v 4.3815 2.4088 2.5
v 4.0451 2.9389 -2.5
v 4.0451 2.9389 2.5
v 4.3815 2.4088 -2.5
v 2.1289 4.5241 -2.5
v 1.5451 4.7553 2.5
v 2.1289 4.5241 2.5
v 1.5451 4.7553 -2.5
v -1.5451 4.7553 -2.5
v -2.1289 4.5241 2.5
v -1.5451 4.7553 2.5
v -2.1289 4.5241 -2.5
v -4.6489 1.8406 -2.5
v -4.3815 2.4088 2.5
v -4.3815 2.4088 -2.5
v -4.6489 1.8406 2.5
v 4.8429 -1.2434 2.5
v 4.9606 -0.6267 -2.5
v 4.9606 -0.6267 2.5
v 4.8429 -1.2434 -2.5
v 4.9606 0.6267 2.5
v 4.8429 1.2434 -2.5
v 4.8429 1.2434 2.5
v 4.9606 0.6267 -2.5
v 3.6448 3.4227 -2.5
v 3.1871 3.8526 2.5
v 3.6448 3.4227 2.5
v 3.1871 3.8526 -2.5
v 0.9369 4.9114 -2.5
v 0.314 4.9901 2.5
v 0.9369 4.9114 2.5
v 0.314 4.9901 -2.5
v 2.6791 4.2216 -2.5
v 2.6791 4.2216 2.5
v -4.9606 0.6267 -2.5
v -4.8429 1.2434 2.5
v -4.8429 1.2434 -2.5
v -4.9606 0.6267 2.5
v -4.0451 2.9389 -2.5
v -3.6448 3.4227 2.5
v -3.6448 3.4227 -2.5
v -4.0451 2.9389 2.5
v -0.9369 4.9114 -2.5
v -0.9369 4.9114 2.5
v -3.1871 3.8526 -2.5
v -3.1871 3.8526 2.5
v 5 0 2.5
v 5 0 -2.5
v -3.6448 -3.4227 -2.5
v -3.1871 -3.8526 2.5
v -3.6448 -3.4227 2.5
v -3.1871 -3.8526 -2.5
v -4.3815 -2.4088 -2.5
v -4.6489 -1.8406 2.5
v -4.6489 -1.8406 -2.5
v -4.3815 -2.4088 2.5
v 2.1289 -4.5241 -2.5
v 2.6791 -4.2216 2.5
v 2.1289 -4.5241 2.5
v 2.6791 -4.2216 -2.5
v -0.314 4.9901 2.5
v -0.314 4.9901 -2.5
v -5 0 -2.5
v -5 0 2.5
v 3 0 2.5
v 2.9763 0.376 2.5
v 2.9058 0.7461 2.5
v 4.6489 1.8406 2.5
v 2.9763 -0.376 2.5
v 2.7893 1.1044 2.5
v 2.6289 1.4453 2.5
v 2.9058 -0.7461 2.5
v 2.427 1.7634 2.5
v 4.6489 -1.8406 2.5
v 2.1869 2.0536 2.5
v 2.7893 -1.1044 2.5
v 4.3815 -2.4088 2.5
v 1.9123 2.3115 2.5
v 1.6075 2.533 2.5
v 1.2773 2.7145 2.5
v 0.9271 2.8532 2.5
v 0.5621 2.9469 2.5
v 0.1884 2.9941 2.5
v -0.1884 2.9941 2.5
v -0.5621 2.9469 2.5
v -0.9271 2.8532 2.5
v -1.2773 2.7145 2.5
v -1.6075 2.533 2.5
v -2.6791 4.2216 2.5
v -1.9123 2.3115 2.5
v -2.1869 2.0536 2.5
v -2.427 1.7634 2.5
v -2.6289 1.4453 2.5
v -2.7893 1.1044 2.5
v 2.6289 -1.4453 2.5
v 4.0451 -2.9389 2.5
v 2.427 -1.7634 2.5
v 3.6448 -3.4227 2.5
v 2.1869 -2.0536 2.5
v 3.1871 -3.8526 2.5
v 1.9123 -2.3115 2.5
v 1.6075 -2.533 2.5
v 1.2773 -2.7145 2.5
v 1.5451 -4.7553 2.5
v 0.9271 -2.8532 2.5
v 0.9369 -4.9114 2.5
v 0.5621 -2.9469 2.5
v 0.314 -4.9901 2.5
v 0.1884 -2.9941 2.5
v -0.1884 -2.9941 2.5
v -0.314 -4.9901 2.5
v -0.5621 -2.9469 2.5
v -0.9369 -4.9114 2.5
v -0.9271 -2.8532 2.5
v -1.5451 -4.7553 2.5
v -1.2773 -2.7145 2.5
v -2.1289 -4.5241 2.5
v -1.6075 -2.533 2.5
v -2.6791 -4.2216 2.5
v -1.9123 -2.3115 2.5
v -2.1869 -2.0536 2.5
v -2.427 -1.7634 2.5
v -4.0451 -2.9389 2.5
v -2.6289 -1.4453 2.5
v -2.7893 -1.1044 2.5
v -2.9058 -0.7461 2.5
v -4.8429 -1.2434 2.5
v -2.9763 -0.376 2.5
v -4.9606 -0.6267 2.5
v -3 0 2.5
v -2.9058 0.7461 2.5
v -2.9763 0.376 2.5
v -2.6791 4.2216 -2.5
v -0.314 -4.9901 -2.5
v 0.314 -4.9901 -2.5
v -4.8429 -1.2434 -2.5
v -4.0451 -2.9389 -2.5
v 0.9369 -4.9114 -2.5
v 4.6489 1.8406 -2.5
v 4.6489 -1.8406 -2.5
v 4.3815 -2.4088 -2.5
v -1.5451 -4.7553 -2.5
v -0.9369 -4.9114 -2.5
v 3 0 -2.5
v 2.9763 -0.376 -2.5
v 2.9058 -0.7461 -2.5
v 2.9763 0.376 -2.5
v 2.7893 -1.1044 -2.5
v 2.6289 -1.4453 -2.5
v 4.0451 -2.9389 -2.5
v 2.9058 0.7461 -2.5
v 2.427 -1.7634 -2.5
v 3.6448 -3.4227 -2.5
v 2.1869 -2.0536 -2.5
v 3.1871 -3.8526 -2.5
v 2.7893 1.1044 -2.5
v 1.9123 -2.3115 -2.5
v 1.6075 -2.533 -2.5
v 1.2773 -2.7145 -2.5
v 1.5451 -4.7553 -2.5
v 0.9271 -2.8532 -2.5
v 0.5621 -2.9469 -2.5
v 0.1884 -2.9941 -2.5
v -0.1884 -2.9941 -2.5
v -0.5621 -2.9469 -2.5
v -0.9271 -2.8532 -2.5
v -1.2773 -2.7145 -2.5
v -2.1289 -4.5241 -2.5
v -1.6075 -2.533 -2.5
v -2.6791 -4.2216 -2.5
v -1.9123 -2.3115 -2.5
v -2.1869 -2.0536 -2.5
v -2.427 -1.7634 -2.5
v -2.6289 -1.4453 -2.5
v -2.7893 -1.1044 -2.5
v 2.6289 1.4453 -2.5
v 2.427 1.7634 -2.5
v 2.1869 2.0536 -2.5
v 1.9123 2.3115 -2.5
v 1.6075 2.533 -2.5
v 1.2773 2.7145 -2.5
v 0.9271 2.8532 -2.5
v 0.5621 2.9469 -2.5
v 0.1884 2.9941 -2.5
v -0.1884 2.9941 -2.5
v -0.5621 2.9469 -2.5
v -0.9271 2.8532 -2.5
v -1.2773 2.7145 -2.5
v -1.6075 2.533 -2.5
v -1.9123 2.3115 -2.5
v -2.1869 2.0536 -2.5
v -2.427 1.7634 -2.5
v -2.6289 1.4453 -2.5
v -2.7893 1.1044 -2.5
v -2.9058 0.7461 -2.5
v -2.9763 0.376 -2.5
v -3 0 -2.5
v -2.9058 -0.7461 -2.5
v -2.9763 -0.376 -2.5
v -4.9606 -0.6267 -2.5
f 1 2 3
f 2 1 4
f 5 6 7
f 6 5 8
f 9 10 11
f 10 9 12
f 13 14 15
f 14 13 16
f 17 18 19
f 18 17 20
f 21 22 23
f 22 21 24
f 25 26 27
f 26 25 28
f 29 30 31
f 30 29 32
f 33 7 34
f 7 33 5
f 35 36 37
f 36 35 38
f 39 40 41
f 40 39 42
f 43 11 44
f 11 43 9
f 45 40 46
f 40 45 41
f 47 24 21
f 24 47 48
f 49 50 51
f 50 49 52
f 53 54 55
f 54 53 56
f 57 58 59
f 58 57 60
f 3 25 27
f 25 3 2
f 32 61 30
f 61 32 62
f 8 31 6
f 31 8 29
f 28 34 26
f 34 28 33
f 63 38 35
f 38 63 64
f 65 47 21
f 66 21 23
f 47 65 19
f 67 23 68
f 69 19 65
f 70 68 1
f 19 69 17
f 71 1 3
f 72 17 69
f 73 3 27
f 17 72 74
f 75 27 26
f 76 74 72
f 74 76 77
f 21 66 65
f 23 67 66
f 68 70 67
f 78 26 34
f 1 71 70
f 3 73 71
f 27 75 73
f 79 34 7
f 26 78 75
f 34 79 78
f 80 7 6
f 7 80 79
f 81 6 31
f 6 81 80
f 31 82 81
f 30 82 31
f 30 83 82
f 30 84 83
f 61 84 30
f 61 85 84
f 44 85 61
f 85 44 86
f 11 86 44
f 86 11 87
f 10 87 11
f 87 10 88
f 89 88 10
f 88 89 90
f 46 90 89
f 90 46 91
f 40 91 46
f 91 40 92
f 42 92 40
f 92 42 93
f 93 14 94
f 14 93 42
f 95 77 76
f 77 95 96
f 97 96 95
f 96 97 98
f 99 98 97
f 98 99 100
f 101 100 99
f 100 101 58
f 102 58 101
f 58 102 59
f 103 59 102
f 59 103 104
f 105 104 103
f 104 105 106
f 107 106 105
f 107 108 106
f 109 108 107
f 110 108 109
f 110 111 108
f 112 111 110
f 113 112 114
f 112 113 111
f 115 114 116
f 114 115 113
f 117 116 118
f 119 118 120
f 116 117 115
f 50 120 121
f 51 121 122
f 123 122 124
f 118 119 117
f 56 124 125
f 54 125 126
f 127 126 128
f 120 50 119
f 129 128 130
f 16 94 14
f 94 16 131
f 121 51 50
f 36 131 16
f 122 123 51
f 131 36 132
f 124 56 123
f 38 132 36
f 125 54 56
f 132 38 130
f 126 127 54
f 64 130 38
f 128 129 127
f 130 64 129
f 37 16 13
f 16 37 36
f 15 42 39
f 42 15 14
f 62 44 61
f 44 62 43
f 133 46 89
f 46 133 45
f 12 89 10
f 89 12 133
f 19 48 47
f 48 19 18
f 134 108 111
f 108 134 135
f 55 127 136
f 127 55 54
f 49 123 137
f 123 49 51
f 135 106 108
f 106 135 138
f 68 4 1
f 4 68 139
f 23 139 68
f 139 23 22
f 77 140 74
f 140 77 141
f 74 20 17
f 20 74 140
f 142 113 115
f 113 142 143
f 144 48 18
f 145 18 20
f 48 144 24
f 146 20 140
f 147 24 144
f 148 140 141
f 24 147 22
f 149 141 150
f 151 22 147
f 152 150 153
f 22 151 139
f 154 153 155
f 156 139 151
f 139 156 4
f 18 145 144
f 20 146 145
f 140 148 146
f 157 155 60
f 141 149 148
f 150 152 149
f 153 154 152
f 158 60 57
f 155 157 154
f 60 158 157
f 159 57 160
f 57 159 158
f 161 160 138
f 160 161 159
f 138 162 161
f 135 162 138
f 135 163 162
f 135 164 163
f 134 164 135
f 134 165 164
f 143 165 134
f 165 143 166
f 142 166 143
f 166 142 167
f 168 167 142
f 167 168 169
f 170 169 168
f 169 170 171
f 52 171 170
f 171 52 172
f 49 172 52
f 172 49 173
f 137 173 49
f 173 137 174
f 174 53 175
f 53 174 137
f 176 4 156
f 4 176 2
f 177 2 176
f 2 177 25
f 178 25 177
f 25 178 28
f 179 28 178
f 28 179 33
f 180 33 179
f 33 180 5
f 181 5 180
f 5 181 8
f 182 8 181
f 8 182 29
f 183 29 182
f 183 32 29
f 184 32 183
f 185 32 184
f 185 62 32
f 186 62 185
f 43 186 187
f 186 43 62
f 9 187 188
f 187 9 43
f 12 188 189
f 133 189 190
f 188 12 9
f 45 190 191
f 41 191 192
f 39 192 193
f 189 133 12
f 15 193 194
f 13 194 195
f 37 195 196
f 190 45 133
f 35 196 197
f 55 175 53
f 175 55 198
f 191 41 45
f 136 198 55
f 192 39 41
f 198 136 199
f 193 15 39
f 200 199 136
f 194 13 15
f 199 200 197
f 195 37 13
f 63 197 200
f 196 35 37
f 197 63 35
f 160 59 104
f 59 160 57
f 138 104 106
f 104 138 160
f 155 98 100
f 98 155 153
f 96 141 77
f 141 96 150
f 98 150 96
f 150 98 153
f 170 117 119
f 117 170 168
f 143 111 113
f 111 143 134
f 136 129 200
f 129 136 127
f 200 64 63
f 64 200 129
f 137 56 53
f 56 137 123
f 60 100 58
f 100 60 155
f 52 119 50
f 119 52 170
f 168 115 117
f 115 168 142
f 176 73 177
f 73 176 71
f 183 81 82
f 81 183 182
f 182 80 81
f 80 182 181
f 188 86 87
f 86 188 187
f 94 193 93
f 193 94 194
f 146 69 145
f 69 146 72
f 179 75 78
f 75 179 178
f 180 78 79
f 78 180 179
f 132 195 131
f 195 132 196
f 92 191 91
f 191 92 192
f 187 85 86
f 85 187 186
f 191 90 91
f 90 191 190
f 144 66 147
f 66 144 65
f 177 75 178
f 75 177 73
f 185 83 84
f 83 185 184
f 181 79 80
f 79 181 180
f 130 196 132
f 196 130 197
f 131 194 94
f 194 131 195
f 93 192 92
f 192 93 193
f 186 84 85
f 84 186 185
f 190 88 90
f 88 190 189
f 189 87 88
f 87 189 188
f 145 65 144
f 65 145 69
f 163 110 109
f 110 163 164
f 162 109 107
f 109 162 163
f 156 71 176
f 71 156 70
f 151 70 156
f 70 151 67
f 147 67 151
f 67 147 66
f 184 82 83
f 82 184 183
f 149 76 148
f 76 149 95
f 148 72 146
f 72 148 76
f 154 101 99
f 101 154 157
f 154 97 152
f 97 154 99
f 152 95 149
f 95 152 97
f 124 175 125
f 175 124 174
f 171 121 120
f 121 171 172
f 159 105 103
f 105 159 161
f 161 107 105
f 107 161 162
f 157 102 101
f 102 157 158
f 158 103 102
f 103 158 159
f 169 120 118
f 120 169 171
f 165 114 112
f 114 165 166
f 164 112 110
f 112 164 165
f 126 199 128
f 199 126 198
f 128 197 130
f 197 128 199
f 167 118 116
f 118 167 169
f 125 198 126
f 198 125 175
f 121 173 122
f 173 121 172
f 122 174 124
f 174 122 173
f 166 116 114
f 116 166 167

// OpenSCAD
$fn = 50;


difference() {
	union() {
		translate(v = [0, 0, -2.5000000000]) {
			cylinder(h = 5, r = 5.0000000000);
		}
	}
	union() {
		translate(v = [0, 0, -100.0000000000]) {
			cylinder(h = 200, r = 3);
		}
	}
}
